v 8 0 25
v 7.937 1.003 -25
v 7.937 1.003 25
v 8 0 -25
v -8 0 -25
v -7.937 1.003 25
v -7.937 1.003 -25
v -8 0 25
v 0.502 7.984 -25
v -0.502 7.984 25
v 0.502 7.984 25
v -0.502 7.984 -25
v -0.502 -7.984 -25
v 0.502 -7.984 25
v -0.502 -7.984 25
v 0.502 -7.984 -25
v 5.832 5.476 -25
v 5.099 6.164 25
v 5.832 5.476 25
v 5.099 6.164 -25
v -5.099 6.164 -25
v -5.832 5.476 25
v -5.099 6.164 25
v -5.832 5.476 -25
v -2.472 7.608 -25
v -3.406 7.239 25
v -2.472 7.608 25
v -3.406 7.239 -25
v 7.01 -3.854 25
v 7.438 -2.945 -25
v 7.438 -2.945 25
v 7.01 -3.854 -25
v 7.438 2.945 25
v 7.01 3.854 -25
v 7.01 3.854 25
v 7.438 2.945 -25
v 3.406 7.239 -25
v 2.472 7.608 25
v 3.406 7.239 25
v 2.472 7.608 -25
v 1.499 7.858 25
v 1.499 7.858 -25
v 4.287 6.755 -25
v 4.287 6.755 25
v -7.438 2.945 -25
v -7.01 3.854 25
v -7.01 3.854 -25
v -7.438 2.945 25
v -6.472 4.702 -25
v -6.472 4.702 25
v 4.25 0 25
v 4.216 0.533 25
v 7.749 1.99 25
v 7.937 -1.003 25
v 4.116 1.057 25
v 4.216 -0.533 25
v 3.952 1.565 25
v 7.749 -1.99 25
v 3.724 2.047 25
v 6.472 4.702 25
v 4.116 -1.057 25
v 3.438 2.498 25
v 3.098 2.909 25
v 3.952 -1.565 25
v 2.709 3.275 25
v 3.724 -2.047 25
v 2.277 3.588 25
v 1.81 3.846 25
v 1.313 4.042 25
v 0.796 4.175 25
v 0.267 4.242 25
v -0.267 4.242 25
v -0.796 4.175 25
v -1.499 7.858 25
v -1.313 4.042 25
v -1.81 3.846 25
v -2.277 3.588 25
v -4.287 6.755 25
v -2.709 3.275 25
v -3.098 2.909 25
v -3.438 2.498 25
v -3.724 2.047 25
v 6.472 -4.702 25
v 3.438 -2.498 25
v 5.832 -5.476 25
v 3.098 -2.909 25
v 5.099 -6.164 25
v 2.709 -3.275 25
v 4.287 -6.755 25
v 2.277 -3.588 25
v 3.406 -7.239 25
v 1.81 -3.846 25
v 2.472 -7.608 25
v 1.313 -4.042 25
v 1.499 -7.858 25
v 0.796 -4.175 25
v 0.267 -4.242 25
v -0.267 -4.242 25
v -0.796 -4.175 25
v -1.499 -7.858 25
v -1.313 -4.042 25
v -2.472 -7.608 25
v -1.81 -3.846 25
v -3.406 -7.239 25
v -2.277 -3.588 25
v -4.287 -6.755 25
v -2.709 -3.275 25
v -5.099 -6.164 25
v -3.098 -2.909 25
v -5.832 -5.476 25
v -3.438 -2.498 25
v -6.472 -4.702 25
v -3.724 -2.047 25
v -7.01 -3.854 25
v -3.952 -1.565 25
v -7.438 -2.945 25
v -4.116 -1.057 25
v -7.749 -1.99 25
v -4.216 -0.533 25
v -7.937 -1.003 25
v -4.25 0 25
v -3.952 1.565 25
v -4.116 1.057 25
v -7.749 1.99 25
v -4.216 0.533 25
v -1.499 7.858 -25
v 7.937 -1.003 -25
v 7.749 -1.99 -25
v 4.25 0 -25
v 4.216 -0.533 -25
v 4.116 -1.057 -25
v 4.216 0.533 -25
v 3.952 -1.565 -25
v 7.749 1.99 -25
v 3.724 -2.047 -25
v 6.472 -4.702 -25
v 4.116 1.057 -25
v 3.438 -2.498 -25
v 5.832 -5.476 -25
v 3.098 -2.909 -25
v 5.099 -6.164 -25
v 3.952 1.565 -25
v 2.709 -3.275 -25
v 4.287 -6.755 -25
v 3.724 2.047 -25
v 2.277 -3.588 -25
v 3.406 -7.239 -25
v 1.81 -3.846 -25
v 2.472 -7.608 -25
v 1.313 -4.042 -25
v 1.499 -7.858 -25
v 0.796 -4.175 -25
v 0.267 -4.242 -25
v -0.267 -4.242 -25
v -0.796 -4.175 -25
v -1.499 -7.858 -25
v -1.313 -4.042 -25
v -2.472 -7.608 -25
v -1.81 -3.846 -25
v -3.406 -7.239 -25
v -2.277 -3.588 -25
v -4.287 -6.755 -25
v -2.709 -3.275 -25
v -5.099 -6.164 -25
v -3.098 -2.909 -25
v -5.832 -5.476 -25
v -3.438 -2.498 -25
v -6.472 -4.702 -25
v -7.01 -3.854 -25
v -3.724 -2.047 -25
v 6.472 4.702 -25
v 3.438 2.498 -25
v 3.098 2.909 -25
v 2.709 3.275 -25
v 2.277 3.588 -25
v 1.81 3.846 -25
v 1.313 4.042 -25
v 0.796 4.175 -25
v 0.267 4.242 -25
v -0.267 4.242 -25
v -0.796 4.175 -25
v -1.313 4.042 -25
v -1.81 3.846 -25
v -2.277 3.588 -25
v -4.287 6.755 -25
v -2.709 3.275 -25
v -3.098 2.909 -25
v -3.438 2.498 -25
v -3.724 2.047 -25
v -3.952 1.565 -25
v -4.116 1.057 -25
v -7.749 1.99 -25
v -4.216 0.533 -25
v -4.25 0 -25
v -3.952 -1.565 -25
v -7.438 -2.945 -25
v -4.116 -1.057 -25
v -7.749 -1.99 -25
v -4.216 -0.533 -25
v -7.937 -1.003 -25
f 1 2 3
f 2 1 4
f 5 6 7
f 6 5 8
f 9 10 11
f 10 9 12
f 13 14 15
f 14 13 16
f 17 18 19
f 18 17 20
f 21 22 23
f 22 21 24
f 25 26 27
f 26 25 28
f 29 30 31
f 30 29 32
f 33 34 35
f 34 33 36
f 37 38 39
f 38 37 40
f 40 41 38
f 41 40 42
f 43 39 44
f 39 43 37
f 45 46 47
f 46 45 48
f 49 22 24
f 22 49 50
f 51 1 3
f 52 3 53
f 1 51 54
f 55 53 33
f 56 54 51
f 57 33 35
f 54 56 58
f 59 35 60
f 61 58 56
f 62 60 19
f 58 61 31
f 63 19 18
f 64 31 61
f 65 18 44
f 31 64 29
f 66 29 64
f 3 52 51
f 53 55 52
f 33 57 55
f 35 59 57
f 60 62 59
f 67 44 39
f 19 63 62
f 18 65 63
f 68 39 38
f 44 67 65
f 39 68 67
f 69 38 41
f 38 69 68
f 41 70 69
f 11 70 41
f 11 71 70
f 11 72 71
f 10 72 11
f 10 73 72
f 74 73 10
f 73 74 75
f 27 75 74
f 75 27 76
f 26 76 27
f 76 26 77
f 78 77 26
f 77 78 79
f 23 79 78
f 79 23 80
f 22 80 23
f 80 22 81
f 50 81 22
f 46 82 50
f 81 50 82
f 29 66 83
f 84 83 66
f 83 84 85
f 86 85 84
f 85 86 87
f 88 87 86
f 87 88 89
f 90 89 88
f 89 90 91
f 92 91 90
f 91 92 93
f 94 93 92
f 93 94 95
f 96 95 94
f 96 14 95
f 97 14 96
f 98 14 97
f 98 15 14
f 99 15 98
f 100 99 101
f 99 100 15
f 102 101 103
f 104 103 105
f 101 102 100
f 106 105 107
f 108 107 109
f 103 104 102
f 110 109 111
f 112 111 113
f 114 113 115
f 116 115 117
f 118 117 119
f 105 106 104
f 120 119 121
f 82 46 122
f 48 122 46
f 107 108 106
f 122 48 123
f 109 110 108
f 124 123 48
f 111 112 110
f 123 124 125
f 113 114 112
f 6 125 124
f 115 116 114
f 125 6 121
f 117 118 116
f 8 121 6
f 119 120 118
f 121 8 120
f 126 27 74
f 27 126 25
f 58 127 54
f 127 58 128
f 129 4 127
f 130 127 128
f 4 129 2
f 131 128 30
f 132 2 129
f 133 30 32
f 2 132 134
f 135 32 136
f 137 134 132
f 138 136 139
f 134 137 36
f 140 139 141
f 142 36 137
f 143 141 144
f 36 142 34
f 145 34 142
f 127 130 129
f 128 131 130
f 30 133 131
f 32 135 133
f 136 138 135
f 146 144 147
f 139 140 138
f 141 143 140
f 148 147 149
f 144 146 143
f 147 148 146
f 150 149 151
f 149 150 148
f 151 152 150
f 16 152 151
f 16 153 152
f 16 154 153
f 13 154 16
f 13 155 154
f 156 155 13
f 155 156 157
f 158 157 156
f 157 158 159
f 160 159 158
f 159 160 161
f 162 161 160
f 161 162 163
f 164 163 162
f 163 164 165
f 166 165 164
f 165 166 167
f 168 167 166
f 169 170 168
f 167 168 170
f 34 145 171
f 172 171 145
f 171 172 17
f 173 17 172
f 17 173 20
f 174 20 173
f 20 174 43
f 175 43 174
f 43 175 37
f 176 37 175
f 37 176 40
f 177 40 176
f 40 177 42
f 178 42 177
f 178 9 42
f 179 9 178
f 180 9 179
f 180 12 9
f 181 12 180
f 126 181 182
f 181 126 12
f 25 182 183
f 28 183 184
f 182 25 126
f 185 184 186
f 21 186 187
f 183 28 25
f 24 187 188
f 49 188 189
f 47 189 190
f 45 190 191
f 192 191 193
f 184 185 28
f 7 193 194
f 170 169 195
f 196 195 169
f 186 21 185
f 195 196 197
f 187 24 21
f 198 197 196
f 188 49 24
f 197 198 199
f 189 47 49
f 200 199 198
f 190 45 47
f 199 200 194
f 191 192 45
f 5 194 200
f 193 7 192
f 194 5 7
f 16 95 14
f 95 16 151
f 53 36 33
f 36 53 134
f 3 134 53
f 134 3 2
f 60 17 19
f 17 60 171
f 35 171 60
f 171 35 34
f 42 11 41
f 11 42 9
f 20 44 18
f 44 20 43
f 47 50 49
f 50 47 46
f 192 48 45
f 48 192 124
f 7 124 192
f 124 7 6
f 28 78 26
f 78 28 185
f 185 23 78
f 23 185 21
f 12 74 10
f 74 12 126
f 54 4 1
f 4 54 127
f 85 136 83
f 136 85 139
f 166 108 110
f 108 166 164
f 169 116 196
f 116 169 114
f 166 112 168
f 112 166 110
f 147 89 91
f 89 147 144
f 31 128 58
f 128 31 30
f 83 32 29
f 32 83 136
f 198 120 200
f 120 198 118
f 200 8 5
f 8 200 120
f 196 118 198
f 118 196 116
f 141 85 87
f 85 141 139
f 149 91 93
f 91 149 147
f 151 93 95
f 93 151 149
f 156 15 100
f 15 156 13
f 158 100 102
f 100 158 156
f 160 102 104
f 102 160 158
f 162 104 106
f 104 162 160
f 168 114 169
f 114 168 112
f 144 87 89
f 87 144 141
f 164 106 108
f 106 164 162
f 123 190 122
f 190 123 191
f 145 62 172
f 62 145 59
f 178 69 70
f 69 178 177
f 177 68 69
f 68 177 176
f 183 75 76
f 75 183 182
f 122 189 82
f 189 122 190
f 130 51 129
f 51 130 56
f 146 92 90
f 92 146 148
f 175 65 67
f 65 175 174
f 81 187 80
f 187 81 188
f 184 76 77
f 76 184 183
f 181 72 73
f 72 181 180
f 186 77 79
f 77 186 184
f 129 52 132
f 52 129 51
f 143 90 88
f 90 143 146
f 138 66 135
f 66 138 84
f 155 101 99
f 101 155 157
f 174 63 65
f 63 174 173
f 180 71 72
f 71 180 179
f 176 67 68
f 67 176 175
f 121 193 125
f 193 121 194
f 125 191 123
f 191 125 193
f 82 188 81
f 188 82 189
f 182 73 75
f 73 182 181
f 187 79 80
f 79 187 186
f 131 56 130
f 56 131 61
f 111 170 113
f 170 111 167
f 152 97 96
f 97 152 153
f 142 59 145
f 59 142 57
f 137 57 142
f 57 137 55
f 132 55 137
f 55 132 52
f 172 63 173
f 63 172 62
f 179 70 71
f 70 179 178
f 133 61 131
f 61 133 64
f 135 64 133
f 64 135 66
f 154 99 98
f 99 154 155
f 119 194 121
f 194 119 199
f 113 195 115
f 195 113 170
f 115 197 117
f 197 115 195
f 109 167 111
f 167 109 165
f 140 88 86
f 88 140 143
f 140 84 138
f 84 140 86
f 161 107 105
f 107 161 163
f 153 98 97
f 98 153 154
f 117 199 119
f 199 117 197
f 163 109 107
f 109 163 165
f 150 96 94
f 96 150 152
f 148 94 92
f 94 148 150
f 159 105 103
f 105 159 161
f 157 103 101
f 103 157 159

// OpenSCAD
$fn = 50;


difference() {
	union() {
		translate(v = [0, 0, -25.0000000000]) {
			cylinder(h = 50, r = 8.0000000000);
		}
	}
	union() {
		translate(v = [0, 0, -100.0000000000]) {
			cylinder(h = 200, r = 4.2500000000);
		}
	}
}
